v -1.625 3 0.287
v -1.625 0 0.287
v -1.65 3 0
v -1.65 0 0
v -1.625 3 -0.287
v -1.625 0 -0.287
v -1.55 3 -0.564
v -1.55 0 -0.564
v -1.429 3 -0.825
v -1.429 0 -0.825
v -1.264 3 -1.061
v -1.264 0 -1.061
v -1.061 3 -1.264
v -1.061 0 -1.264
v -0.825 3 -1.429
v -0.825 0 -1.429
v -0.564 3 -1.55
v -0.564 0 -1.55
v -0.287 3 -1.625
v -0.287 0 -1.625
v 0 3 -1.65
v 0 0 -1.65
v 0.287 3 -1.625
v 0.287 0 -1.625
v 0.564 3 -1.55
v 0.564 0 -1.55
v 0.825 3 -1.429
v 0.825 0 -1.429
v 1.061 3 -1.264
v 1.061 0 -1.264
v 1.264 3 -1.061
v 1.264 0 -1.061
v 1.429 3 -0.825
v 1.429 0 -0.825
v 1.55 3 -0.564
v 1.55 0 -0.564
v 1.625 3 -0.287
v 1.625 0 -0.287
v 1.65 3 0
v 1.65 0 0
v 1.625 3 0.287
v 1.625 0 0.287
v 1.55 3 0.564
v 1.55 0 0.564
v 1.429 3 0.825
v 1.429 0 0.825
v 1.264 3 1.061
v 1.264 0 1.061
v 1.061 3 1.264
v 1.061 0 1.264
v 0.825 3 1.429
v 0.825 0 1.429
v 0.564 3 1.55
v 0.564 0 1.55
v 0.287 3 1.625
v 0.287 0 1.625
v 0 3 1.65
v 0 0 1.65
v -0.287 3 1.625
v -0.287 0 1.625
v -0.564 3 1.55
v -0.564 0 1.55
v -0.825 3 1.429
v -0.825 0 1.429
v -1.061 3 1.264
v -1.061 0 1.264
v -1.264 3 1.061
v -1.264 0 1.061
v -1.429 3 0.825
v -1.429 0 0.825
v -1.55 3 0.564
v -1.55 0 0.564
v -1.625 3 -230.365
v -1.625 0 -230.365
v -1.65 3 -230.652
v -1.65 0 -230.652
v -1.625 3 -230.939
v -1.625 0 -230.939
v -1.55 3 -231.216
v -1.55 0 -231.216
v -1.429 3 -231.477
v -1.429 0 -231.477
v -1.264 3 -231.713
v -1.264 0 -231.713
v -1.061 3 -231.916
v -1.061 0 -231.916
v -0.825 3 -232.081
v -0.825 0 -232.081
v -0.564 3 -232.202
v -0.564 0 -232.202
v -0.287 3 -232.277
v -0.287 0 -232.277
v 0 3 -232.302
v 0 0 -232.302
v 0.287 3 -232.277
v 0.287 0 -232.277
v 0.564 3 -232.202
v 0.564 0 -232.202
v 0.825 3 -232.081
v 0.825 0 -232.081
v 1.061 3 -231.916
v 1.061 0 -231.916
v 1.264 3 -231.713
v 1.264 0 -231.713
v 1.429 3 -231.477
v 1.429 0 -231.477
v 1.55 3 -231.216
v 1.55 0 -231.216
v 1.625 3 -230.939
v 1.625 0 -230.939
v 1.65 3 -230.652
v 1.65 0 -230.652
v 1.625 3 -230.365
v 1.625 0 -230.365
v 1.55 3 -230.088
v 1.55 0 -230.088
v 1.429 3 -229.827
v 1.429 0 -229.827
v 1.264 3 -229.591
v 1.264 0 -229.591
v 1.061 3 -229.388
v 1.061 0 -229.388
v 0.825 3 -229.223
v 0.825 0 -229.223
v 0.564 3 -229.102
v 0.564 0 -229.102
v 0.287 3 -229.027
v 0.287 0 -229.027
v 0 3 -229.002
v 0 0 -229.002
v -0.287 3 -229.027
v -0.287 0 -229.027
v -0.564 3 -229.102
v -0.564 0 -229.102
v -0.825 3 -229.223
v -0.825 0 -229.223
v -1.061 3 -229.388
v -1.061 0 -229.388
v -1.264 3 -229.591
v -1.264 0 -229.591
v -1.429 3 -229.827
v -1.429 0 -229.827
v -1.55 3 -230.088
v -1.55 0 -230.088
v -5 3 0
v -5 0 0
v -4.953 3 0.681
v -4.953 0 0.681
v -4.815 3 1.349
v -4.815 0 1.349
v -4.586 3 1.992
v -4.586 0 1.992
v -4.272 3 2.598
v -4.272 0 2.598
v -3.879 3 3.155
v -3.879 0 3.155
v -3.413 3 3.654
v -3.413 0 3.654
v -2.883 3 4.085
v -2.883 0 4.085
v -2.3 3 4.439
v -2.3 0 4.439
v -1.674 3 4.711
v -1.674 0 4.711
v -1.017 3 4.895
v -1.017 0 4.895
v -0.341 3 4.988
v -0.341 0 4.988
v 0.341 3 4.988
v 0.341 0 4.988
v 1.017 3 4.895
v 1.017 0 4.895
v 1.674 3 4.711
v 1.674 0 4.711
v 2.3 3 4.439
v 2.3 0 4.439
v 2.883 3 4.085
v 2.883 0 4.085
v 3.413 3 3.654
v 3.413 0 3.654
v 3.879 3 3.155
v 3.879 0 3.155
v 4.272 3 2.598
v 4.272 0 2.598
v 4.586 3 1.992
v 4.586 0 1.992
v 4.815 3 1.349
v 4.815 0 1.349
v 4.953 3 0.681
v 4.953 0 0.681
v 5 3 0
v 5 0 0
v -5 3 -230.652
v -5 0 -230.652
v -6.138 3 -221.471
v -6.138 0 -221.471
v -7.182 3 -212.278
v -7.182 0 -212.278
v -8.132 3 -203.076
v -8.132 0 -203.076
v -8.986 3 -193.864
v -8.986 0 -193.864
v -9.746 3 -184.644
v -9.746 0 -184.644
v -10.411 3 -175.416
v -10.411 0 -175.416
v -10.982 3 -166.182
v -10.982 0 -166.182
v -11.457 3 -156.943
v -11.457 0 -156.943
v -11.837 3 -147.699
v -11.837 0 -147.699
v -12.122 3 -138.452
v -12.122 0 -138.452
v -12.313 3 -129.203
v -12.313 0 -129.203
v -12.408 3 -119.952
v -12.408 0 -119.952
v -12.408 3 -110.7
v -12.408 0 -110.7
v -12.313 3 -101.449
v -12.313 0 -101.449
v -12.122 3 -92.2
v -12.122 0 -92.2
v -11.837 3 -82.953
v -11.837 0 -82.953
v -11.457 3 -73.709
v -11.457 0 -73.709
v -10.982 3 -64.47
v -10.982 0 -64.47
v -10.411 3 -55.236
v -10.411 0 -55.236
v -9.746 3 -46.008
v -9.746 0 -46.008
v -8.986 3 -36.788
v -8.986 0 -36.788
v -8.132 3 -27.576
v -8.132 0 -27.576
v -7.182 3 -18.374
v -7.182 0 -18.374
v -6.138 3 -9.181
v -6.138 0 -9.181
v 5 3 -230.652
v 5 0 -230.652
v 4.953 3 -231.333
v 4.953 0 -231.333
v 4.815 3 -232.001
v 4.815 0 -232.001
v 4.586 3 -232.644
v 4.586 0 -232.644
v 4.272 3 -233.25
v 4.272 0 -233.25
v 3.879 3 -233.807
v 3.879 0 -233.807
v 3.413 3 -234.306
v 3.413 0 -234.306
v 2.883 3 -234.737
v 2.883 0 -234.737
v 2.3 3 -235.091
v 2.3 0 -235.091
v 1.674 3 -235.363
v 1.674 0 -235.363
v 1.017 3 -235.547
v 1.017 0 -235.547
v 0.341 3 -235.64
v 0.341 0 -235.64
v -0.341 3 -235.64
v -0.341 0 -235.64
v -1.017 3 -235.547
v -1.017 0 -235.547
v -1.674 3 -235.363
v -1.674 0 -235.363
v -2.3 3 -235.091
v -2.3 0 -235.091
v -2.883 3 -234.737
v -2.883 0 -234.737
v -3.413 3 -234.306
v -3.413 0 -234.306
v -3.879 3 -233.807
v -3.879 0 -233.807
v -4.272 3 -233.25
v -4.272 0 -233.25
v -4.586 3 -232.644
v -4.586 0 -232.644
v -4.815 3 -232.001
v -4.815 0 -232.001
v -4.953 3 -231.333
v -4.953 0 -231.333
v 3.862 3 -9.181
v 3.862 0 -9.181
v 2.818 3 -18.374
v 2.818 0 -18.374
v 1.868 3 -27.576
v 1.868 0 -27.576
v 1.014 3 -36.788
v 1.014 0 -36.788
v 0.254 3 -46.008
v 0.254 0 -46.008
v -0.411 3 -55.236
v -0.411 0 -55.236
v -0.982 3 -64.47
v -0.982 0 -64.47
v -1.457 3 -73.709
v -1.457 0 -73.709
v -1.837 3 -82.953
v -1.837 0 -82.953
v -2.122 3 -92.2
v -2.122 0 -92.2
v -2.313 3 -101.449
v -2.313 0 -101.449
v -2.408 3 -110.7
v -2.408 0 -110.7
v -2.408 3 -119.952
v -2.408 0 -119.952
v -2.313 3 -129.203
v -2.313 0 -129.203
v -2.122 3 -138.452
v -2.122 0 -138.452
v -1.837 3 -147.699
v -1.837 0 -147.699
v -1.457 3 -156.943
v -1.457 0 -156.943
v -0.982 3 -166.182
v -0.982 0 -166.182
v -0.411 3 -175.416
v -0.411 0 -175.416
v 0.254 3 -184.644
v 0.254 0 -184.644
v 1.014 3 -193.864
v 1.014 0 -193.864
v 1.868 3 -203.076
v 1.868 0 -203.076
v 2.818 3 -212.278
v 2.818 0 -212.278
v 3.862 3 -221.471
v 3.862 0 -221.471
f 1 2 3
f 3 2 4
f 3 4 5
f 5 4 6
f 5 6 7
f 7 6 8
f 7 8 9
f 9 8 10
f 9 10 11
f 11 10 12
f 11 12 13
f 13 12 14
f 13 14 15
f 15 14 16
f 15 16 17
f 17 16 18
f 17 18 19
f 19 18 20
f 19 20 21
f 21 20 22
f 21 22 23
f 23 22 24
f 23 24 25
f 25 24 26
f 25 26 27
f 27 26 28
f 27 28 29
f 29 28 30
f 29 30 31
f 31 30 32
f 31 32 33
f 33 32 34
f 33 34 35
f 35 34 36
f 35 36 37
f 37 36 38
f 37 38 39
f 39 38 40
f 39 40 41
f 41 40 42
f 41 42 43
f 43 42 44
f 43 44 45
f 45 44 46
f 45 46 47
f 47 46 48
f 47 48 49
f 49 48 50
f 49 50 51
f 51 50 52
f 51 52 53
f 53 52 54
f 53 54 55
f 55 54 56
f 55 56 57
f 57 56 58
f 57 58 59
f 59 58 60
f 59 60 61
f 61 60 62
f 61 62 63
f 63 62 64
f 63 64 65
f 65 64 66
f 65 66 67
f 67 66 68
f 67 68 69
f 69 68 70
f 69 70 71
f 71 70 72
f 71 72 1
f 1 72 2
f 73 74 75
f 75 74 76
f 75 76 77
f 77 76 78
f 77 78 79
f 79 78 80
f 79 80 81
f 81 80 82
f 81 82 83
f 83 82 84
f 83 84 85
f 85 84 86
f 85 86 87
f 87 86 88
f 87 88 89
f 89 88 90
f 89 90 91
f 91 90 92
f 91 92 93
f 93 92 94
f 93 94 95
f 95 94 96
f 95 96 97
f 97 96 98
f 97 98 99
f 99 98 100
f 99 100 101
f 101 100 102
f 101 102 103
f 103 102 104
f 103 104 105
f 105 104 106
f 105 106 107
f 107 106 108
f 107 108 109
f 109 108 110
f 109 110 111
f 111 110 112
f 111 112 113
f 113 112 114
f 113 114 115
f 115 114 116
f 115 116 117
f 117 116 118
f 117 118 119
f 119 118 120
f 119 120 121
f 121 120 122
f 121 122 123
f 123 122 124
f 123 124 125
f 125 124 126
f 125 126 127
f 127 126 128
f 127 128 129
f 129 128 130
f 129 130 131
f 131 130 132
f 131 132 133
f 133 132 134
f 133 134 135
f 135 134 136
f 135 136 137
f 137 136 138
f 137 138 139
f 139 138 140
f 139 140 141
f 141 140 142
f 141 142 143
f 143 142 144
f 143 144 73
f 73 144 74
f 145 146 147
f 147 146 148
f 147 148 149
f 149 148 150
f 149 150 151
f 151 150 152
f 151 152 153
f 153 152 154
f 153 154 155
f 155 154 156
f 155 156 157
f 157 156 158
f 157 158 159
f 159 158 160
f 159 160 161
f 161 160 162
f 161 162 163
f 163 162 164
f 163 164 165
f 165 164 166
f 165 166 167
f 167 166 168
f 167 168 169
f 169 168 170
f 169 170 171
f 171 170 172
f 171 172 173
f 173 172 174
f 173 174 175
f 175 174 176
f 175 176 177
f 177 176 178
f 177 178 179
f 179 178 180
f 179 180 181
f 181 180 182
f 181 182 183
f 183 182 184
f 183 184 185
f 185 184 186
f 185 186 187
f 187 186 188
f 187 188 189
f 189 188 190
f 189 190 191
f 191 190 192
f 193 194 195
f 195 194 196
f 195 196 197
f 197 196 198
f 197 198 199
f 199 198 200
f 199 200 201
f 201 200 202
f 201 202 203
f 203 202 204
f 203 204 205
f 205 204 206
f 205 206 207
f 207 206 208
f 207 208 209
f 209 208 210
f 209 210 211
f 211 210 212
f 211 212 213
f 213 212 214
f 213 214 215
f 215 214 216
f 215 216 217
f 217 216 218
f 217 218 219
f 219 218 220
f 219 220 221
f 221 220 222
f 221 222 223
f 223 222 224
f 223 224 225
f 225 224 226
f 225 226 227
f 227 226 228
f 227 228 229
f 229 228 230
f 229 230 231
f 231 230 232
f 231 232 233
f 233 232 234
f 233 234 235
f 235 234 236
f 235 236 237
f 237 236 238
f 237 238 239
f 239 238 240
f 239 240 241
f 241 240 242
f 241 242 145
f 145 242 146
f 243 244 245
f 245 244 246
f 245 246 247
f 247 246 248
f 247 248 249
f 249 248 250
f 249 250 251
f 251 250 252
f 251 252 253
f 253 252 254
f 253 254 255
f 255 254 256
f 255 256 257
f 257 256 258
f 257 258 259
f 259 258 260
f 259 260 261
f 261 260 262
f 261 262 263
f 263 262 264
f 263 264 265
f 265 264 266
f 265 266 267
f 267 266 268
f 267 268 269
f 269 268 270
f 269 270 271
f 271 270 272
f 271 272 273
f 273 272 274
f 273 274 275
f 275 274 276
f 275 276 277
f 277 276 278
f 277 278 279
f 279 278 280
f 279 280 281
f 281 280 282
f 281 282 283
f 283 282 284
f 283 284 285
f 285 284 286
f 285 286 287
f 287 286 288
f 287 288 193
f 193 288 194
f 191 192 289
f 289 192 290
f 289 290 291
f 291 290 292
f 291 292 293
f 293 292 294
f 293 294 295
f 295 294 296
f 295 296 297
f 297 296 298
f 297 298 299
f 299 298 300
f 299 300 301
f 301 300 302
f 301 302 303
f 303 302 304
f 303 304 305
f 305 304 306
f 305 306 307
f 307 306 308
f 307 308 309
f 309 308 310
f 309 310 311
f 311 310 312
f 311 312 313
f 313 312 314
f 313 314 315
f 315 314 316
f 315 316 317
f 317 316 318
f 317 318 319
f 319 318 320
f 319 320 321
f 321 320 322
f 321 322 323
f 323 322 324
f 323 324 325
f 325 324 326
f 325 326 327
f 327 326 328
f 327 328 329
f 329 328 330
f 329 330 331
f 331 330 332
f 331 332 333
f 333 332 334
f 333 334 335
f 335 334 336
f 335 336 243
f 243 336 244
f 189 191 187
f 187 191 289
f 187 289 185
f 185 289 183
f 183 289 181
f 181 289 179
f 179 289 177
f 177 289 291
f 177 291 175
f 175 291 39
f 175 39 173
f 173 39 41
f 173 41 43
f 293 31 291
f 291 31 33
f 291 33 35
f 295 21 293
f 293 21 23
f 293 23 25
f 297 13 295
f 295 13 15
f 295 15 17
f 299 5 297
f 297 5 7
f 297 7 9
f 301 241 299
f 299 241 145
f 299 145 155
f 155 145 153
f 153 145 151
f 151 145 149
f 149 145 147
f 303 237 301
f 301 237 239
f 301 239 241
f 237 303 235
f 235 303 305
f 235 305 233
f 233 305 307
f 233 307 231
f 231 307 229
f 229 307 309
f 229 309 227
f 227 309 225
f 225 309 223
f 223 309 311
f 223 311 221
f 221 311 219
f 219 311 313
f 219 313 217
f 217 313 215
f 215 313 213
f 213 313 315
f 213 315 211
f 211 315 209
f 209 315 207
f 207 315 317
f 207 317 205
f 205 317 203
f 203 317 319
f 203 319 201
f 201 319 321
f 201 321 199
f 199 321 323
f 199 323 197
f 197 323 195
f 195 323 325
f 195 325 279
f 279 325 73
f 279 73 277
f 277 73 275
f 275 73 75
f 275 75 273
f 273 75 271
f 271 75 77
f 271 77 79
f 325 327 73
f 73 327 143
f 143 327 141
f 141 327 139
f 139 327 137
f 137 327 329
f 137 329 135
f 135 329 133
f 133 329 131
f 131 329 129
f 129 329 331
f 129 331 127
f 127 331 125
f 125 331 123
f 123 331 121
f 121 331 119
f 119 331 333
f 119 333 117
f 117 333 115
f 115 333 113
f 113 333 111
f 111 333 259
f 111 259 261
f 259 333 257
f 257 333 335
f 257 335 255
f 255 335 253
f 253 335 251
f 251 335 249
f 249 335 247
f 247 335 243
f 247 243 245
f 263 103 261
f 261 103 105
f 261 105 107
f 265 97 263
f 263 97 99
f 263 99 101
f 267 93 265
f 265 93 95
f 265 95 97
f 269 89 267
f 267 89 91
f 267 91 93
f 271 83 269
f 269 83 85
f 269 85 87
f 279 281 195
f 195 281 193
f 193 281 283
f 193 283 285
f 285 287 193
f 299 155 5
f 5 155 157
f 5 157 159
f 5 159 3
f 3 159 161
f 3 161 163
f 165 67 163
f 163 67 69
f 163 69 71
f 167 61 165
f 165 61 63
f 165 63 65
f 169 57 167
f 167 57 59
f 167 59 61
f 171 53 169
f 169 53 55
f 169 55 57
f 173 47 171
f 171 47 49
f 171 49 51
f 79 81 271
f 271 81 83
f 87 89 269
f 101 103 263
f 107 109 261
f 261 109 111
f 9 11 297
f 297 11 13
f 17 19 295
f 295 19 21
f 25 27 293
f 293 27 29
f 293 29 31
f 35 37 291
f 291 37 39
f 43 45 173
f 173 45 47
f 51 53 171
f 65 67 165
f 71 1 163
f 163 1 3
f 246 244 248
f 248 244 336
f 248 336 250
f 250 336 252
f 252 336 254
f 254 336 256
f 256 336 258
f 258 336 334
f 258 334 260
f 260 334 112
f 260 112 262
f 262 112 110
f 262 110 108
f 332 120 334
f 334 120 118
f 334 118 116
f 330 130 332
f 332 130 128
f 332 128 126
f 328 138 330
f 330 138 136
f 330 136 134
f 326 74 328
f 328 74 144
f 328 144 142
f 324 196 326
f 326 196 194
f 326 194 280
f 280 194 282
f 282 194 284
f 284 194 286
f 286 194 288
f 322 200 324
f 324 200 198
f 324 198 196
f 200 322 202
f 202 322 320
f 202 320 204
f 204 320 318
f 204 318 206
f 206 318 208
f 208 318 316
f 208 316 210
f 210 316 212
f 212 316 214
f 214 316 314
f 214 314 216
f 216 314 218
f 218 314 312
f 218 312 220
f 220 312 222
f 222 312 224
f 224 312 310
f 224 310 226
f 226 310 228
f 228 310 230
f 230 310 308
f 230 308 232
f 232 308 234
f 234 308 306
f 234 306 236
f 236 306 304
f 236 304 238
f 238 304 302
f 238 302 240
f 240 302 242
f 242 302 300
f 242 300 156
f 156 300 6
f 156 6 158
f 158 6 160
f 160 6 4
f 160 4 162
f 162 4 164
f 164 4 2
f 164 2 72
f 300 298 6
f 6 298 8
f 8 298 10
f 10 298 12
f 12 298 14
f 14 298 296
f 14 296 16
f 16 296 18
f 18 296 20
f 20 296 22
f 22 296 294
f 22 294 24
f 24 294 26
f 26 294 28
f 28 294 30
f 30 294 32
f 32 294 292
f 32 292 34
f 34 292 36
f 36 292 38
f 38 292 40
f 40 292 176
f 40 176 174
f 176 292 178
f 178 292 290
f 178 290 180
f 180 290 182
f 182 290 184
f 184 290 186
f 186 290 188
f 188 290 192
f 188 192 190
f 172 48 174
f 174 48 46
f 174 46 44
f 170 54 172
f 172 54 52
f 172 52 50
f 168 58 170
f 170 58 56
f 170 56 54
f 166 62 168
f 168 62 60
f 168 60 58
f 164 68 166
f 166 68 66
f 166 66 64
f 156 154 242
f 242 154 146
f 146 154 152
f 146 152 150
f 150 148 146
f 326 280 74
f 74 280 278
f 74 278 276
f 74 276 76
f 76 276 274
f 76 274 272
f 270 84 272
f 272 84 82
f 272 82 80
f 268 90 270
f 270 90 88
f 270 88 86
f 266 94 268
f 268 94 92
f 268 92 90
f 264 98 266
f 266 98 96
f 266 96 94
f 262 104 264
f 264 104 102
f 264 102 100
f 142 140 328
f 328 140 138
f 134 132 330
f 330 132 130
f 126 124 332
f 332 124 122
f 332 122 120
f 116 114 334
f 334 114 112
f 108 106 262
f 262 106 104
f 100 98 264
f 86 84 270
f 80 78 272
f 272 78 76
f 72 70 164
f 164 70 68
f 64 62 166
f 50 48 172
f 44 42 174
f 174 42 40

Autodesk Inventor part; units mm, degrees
ref_plane "YZ Plane" through (0, 0, 0) normal (1, 0, 0) x (0, 1, 0)
ref_plane "XZ Plane" through (0, 0, 0) normal (0, 1, 0) x (-1, 0, 0)
ref_plane "XY Plane" through (0, 0, 0) normal (0, 0, 1) x (1, 0, 0)
sketch "Sketch1" plane through (0, 0, 0) normal (0, 1, 0) x (-1, 0, 0)
  line L0 (0, 0) -> (0, -230.652) construction
  line L1 (5, 0) -> (5, -230.652)
  line L2 (-5, -230.652) -> (-5, 0)
  arc A0 (5, 0) -> (-5, 0) centre (0, 0) ccw
  arc A1 (-5, -230.652) -> (5, -230.652) centre (0, -230.652) ccw
  circle A2 centre (0, 0) radius 1.65
  circle A3 centre (0, -230.652) radius 1.65
  arc A4 (-5, -230.652) -> (-5, 0) centre (-897.5805, -115.326) ccw
  arc A5 (5, -230.652) -> (5, 0) centre (-887.5805, -115.326) ccw
  point P0 (0, -115.326)
  dimension "d0" = 3.3
  dimension "d1" = 3.3
  dimension "d2" = 10
  dimension "d3" = 230.652
  dimension "d14" = 900
  dimension "d15" = 900
extrude "Extrusion1" add sketch "Sketch1" along normal blind 3 contours A5 L1 | L1 A1 A4 A0
